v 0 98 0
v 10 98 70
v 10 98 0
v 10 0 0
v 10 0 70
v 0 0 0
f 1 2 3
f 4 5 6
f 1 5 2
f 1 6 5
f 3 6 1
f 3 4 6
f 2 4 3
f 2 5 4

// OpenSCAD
echo(version=version());

$wall_thickness = 3;
$card_space_width = 98;
$fn = 50;

height = 70;
depth = 10;

module triangular_prism(width, height, depth, distance=0) {
  translate([0, depth, 0]) {
    rotate([90, 0, 0]) {
      linear_extrude(depth) {
        polygon([[0, 0], [width, 0], [(distance == 0) ? (width / 2) : distance, height]]);
      }
    }
  }
}

module card_slope(height, depth, width=$card_space_width) {
  triangular_prism(depth, height, width, depth);
}

card_slope(height, depth);
